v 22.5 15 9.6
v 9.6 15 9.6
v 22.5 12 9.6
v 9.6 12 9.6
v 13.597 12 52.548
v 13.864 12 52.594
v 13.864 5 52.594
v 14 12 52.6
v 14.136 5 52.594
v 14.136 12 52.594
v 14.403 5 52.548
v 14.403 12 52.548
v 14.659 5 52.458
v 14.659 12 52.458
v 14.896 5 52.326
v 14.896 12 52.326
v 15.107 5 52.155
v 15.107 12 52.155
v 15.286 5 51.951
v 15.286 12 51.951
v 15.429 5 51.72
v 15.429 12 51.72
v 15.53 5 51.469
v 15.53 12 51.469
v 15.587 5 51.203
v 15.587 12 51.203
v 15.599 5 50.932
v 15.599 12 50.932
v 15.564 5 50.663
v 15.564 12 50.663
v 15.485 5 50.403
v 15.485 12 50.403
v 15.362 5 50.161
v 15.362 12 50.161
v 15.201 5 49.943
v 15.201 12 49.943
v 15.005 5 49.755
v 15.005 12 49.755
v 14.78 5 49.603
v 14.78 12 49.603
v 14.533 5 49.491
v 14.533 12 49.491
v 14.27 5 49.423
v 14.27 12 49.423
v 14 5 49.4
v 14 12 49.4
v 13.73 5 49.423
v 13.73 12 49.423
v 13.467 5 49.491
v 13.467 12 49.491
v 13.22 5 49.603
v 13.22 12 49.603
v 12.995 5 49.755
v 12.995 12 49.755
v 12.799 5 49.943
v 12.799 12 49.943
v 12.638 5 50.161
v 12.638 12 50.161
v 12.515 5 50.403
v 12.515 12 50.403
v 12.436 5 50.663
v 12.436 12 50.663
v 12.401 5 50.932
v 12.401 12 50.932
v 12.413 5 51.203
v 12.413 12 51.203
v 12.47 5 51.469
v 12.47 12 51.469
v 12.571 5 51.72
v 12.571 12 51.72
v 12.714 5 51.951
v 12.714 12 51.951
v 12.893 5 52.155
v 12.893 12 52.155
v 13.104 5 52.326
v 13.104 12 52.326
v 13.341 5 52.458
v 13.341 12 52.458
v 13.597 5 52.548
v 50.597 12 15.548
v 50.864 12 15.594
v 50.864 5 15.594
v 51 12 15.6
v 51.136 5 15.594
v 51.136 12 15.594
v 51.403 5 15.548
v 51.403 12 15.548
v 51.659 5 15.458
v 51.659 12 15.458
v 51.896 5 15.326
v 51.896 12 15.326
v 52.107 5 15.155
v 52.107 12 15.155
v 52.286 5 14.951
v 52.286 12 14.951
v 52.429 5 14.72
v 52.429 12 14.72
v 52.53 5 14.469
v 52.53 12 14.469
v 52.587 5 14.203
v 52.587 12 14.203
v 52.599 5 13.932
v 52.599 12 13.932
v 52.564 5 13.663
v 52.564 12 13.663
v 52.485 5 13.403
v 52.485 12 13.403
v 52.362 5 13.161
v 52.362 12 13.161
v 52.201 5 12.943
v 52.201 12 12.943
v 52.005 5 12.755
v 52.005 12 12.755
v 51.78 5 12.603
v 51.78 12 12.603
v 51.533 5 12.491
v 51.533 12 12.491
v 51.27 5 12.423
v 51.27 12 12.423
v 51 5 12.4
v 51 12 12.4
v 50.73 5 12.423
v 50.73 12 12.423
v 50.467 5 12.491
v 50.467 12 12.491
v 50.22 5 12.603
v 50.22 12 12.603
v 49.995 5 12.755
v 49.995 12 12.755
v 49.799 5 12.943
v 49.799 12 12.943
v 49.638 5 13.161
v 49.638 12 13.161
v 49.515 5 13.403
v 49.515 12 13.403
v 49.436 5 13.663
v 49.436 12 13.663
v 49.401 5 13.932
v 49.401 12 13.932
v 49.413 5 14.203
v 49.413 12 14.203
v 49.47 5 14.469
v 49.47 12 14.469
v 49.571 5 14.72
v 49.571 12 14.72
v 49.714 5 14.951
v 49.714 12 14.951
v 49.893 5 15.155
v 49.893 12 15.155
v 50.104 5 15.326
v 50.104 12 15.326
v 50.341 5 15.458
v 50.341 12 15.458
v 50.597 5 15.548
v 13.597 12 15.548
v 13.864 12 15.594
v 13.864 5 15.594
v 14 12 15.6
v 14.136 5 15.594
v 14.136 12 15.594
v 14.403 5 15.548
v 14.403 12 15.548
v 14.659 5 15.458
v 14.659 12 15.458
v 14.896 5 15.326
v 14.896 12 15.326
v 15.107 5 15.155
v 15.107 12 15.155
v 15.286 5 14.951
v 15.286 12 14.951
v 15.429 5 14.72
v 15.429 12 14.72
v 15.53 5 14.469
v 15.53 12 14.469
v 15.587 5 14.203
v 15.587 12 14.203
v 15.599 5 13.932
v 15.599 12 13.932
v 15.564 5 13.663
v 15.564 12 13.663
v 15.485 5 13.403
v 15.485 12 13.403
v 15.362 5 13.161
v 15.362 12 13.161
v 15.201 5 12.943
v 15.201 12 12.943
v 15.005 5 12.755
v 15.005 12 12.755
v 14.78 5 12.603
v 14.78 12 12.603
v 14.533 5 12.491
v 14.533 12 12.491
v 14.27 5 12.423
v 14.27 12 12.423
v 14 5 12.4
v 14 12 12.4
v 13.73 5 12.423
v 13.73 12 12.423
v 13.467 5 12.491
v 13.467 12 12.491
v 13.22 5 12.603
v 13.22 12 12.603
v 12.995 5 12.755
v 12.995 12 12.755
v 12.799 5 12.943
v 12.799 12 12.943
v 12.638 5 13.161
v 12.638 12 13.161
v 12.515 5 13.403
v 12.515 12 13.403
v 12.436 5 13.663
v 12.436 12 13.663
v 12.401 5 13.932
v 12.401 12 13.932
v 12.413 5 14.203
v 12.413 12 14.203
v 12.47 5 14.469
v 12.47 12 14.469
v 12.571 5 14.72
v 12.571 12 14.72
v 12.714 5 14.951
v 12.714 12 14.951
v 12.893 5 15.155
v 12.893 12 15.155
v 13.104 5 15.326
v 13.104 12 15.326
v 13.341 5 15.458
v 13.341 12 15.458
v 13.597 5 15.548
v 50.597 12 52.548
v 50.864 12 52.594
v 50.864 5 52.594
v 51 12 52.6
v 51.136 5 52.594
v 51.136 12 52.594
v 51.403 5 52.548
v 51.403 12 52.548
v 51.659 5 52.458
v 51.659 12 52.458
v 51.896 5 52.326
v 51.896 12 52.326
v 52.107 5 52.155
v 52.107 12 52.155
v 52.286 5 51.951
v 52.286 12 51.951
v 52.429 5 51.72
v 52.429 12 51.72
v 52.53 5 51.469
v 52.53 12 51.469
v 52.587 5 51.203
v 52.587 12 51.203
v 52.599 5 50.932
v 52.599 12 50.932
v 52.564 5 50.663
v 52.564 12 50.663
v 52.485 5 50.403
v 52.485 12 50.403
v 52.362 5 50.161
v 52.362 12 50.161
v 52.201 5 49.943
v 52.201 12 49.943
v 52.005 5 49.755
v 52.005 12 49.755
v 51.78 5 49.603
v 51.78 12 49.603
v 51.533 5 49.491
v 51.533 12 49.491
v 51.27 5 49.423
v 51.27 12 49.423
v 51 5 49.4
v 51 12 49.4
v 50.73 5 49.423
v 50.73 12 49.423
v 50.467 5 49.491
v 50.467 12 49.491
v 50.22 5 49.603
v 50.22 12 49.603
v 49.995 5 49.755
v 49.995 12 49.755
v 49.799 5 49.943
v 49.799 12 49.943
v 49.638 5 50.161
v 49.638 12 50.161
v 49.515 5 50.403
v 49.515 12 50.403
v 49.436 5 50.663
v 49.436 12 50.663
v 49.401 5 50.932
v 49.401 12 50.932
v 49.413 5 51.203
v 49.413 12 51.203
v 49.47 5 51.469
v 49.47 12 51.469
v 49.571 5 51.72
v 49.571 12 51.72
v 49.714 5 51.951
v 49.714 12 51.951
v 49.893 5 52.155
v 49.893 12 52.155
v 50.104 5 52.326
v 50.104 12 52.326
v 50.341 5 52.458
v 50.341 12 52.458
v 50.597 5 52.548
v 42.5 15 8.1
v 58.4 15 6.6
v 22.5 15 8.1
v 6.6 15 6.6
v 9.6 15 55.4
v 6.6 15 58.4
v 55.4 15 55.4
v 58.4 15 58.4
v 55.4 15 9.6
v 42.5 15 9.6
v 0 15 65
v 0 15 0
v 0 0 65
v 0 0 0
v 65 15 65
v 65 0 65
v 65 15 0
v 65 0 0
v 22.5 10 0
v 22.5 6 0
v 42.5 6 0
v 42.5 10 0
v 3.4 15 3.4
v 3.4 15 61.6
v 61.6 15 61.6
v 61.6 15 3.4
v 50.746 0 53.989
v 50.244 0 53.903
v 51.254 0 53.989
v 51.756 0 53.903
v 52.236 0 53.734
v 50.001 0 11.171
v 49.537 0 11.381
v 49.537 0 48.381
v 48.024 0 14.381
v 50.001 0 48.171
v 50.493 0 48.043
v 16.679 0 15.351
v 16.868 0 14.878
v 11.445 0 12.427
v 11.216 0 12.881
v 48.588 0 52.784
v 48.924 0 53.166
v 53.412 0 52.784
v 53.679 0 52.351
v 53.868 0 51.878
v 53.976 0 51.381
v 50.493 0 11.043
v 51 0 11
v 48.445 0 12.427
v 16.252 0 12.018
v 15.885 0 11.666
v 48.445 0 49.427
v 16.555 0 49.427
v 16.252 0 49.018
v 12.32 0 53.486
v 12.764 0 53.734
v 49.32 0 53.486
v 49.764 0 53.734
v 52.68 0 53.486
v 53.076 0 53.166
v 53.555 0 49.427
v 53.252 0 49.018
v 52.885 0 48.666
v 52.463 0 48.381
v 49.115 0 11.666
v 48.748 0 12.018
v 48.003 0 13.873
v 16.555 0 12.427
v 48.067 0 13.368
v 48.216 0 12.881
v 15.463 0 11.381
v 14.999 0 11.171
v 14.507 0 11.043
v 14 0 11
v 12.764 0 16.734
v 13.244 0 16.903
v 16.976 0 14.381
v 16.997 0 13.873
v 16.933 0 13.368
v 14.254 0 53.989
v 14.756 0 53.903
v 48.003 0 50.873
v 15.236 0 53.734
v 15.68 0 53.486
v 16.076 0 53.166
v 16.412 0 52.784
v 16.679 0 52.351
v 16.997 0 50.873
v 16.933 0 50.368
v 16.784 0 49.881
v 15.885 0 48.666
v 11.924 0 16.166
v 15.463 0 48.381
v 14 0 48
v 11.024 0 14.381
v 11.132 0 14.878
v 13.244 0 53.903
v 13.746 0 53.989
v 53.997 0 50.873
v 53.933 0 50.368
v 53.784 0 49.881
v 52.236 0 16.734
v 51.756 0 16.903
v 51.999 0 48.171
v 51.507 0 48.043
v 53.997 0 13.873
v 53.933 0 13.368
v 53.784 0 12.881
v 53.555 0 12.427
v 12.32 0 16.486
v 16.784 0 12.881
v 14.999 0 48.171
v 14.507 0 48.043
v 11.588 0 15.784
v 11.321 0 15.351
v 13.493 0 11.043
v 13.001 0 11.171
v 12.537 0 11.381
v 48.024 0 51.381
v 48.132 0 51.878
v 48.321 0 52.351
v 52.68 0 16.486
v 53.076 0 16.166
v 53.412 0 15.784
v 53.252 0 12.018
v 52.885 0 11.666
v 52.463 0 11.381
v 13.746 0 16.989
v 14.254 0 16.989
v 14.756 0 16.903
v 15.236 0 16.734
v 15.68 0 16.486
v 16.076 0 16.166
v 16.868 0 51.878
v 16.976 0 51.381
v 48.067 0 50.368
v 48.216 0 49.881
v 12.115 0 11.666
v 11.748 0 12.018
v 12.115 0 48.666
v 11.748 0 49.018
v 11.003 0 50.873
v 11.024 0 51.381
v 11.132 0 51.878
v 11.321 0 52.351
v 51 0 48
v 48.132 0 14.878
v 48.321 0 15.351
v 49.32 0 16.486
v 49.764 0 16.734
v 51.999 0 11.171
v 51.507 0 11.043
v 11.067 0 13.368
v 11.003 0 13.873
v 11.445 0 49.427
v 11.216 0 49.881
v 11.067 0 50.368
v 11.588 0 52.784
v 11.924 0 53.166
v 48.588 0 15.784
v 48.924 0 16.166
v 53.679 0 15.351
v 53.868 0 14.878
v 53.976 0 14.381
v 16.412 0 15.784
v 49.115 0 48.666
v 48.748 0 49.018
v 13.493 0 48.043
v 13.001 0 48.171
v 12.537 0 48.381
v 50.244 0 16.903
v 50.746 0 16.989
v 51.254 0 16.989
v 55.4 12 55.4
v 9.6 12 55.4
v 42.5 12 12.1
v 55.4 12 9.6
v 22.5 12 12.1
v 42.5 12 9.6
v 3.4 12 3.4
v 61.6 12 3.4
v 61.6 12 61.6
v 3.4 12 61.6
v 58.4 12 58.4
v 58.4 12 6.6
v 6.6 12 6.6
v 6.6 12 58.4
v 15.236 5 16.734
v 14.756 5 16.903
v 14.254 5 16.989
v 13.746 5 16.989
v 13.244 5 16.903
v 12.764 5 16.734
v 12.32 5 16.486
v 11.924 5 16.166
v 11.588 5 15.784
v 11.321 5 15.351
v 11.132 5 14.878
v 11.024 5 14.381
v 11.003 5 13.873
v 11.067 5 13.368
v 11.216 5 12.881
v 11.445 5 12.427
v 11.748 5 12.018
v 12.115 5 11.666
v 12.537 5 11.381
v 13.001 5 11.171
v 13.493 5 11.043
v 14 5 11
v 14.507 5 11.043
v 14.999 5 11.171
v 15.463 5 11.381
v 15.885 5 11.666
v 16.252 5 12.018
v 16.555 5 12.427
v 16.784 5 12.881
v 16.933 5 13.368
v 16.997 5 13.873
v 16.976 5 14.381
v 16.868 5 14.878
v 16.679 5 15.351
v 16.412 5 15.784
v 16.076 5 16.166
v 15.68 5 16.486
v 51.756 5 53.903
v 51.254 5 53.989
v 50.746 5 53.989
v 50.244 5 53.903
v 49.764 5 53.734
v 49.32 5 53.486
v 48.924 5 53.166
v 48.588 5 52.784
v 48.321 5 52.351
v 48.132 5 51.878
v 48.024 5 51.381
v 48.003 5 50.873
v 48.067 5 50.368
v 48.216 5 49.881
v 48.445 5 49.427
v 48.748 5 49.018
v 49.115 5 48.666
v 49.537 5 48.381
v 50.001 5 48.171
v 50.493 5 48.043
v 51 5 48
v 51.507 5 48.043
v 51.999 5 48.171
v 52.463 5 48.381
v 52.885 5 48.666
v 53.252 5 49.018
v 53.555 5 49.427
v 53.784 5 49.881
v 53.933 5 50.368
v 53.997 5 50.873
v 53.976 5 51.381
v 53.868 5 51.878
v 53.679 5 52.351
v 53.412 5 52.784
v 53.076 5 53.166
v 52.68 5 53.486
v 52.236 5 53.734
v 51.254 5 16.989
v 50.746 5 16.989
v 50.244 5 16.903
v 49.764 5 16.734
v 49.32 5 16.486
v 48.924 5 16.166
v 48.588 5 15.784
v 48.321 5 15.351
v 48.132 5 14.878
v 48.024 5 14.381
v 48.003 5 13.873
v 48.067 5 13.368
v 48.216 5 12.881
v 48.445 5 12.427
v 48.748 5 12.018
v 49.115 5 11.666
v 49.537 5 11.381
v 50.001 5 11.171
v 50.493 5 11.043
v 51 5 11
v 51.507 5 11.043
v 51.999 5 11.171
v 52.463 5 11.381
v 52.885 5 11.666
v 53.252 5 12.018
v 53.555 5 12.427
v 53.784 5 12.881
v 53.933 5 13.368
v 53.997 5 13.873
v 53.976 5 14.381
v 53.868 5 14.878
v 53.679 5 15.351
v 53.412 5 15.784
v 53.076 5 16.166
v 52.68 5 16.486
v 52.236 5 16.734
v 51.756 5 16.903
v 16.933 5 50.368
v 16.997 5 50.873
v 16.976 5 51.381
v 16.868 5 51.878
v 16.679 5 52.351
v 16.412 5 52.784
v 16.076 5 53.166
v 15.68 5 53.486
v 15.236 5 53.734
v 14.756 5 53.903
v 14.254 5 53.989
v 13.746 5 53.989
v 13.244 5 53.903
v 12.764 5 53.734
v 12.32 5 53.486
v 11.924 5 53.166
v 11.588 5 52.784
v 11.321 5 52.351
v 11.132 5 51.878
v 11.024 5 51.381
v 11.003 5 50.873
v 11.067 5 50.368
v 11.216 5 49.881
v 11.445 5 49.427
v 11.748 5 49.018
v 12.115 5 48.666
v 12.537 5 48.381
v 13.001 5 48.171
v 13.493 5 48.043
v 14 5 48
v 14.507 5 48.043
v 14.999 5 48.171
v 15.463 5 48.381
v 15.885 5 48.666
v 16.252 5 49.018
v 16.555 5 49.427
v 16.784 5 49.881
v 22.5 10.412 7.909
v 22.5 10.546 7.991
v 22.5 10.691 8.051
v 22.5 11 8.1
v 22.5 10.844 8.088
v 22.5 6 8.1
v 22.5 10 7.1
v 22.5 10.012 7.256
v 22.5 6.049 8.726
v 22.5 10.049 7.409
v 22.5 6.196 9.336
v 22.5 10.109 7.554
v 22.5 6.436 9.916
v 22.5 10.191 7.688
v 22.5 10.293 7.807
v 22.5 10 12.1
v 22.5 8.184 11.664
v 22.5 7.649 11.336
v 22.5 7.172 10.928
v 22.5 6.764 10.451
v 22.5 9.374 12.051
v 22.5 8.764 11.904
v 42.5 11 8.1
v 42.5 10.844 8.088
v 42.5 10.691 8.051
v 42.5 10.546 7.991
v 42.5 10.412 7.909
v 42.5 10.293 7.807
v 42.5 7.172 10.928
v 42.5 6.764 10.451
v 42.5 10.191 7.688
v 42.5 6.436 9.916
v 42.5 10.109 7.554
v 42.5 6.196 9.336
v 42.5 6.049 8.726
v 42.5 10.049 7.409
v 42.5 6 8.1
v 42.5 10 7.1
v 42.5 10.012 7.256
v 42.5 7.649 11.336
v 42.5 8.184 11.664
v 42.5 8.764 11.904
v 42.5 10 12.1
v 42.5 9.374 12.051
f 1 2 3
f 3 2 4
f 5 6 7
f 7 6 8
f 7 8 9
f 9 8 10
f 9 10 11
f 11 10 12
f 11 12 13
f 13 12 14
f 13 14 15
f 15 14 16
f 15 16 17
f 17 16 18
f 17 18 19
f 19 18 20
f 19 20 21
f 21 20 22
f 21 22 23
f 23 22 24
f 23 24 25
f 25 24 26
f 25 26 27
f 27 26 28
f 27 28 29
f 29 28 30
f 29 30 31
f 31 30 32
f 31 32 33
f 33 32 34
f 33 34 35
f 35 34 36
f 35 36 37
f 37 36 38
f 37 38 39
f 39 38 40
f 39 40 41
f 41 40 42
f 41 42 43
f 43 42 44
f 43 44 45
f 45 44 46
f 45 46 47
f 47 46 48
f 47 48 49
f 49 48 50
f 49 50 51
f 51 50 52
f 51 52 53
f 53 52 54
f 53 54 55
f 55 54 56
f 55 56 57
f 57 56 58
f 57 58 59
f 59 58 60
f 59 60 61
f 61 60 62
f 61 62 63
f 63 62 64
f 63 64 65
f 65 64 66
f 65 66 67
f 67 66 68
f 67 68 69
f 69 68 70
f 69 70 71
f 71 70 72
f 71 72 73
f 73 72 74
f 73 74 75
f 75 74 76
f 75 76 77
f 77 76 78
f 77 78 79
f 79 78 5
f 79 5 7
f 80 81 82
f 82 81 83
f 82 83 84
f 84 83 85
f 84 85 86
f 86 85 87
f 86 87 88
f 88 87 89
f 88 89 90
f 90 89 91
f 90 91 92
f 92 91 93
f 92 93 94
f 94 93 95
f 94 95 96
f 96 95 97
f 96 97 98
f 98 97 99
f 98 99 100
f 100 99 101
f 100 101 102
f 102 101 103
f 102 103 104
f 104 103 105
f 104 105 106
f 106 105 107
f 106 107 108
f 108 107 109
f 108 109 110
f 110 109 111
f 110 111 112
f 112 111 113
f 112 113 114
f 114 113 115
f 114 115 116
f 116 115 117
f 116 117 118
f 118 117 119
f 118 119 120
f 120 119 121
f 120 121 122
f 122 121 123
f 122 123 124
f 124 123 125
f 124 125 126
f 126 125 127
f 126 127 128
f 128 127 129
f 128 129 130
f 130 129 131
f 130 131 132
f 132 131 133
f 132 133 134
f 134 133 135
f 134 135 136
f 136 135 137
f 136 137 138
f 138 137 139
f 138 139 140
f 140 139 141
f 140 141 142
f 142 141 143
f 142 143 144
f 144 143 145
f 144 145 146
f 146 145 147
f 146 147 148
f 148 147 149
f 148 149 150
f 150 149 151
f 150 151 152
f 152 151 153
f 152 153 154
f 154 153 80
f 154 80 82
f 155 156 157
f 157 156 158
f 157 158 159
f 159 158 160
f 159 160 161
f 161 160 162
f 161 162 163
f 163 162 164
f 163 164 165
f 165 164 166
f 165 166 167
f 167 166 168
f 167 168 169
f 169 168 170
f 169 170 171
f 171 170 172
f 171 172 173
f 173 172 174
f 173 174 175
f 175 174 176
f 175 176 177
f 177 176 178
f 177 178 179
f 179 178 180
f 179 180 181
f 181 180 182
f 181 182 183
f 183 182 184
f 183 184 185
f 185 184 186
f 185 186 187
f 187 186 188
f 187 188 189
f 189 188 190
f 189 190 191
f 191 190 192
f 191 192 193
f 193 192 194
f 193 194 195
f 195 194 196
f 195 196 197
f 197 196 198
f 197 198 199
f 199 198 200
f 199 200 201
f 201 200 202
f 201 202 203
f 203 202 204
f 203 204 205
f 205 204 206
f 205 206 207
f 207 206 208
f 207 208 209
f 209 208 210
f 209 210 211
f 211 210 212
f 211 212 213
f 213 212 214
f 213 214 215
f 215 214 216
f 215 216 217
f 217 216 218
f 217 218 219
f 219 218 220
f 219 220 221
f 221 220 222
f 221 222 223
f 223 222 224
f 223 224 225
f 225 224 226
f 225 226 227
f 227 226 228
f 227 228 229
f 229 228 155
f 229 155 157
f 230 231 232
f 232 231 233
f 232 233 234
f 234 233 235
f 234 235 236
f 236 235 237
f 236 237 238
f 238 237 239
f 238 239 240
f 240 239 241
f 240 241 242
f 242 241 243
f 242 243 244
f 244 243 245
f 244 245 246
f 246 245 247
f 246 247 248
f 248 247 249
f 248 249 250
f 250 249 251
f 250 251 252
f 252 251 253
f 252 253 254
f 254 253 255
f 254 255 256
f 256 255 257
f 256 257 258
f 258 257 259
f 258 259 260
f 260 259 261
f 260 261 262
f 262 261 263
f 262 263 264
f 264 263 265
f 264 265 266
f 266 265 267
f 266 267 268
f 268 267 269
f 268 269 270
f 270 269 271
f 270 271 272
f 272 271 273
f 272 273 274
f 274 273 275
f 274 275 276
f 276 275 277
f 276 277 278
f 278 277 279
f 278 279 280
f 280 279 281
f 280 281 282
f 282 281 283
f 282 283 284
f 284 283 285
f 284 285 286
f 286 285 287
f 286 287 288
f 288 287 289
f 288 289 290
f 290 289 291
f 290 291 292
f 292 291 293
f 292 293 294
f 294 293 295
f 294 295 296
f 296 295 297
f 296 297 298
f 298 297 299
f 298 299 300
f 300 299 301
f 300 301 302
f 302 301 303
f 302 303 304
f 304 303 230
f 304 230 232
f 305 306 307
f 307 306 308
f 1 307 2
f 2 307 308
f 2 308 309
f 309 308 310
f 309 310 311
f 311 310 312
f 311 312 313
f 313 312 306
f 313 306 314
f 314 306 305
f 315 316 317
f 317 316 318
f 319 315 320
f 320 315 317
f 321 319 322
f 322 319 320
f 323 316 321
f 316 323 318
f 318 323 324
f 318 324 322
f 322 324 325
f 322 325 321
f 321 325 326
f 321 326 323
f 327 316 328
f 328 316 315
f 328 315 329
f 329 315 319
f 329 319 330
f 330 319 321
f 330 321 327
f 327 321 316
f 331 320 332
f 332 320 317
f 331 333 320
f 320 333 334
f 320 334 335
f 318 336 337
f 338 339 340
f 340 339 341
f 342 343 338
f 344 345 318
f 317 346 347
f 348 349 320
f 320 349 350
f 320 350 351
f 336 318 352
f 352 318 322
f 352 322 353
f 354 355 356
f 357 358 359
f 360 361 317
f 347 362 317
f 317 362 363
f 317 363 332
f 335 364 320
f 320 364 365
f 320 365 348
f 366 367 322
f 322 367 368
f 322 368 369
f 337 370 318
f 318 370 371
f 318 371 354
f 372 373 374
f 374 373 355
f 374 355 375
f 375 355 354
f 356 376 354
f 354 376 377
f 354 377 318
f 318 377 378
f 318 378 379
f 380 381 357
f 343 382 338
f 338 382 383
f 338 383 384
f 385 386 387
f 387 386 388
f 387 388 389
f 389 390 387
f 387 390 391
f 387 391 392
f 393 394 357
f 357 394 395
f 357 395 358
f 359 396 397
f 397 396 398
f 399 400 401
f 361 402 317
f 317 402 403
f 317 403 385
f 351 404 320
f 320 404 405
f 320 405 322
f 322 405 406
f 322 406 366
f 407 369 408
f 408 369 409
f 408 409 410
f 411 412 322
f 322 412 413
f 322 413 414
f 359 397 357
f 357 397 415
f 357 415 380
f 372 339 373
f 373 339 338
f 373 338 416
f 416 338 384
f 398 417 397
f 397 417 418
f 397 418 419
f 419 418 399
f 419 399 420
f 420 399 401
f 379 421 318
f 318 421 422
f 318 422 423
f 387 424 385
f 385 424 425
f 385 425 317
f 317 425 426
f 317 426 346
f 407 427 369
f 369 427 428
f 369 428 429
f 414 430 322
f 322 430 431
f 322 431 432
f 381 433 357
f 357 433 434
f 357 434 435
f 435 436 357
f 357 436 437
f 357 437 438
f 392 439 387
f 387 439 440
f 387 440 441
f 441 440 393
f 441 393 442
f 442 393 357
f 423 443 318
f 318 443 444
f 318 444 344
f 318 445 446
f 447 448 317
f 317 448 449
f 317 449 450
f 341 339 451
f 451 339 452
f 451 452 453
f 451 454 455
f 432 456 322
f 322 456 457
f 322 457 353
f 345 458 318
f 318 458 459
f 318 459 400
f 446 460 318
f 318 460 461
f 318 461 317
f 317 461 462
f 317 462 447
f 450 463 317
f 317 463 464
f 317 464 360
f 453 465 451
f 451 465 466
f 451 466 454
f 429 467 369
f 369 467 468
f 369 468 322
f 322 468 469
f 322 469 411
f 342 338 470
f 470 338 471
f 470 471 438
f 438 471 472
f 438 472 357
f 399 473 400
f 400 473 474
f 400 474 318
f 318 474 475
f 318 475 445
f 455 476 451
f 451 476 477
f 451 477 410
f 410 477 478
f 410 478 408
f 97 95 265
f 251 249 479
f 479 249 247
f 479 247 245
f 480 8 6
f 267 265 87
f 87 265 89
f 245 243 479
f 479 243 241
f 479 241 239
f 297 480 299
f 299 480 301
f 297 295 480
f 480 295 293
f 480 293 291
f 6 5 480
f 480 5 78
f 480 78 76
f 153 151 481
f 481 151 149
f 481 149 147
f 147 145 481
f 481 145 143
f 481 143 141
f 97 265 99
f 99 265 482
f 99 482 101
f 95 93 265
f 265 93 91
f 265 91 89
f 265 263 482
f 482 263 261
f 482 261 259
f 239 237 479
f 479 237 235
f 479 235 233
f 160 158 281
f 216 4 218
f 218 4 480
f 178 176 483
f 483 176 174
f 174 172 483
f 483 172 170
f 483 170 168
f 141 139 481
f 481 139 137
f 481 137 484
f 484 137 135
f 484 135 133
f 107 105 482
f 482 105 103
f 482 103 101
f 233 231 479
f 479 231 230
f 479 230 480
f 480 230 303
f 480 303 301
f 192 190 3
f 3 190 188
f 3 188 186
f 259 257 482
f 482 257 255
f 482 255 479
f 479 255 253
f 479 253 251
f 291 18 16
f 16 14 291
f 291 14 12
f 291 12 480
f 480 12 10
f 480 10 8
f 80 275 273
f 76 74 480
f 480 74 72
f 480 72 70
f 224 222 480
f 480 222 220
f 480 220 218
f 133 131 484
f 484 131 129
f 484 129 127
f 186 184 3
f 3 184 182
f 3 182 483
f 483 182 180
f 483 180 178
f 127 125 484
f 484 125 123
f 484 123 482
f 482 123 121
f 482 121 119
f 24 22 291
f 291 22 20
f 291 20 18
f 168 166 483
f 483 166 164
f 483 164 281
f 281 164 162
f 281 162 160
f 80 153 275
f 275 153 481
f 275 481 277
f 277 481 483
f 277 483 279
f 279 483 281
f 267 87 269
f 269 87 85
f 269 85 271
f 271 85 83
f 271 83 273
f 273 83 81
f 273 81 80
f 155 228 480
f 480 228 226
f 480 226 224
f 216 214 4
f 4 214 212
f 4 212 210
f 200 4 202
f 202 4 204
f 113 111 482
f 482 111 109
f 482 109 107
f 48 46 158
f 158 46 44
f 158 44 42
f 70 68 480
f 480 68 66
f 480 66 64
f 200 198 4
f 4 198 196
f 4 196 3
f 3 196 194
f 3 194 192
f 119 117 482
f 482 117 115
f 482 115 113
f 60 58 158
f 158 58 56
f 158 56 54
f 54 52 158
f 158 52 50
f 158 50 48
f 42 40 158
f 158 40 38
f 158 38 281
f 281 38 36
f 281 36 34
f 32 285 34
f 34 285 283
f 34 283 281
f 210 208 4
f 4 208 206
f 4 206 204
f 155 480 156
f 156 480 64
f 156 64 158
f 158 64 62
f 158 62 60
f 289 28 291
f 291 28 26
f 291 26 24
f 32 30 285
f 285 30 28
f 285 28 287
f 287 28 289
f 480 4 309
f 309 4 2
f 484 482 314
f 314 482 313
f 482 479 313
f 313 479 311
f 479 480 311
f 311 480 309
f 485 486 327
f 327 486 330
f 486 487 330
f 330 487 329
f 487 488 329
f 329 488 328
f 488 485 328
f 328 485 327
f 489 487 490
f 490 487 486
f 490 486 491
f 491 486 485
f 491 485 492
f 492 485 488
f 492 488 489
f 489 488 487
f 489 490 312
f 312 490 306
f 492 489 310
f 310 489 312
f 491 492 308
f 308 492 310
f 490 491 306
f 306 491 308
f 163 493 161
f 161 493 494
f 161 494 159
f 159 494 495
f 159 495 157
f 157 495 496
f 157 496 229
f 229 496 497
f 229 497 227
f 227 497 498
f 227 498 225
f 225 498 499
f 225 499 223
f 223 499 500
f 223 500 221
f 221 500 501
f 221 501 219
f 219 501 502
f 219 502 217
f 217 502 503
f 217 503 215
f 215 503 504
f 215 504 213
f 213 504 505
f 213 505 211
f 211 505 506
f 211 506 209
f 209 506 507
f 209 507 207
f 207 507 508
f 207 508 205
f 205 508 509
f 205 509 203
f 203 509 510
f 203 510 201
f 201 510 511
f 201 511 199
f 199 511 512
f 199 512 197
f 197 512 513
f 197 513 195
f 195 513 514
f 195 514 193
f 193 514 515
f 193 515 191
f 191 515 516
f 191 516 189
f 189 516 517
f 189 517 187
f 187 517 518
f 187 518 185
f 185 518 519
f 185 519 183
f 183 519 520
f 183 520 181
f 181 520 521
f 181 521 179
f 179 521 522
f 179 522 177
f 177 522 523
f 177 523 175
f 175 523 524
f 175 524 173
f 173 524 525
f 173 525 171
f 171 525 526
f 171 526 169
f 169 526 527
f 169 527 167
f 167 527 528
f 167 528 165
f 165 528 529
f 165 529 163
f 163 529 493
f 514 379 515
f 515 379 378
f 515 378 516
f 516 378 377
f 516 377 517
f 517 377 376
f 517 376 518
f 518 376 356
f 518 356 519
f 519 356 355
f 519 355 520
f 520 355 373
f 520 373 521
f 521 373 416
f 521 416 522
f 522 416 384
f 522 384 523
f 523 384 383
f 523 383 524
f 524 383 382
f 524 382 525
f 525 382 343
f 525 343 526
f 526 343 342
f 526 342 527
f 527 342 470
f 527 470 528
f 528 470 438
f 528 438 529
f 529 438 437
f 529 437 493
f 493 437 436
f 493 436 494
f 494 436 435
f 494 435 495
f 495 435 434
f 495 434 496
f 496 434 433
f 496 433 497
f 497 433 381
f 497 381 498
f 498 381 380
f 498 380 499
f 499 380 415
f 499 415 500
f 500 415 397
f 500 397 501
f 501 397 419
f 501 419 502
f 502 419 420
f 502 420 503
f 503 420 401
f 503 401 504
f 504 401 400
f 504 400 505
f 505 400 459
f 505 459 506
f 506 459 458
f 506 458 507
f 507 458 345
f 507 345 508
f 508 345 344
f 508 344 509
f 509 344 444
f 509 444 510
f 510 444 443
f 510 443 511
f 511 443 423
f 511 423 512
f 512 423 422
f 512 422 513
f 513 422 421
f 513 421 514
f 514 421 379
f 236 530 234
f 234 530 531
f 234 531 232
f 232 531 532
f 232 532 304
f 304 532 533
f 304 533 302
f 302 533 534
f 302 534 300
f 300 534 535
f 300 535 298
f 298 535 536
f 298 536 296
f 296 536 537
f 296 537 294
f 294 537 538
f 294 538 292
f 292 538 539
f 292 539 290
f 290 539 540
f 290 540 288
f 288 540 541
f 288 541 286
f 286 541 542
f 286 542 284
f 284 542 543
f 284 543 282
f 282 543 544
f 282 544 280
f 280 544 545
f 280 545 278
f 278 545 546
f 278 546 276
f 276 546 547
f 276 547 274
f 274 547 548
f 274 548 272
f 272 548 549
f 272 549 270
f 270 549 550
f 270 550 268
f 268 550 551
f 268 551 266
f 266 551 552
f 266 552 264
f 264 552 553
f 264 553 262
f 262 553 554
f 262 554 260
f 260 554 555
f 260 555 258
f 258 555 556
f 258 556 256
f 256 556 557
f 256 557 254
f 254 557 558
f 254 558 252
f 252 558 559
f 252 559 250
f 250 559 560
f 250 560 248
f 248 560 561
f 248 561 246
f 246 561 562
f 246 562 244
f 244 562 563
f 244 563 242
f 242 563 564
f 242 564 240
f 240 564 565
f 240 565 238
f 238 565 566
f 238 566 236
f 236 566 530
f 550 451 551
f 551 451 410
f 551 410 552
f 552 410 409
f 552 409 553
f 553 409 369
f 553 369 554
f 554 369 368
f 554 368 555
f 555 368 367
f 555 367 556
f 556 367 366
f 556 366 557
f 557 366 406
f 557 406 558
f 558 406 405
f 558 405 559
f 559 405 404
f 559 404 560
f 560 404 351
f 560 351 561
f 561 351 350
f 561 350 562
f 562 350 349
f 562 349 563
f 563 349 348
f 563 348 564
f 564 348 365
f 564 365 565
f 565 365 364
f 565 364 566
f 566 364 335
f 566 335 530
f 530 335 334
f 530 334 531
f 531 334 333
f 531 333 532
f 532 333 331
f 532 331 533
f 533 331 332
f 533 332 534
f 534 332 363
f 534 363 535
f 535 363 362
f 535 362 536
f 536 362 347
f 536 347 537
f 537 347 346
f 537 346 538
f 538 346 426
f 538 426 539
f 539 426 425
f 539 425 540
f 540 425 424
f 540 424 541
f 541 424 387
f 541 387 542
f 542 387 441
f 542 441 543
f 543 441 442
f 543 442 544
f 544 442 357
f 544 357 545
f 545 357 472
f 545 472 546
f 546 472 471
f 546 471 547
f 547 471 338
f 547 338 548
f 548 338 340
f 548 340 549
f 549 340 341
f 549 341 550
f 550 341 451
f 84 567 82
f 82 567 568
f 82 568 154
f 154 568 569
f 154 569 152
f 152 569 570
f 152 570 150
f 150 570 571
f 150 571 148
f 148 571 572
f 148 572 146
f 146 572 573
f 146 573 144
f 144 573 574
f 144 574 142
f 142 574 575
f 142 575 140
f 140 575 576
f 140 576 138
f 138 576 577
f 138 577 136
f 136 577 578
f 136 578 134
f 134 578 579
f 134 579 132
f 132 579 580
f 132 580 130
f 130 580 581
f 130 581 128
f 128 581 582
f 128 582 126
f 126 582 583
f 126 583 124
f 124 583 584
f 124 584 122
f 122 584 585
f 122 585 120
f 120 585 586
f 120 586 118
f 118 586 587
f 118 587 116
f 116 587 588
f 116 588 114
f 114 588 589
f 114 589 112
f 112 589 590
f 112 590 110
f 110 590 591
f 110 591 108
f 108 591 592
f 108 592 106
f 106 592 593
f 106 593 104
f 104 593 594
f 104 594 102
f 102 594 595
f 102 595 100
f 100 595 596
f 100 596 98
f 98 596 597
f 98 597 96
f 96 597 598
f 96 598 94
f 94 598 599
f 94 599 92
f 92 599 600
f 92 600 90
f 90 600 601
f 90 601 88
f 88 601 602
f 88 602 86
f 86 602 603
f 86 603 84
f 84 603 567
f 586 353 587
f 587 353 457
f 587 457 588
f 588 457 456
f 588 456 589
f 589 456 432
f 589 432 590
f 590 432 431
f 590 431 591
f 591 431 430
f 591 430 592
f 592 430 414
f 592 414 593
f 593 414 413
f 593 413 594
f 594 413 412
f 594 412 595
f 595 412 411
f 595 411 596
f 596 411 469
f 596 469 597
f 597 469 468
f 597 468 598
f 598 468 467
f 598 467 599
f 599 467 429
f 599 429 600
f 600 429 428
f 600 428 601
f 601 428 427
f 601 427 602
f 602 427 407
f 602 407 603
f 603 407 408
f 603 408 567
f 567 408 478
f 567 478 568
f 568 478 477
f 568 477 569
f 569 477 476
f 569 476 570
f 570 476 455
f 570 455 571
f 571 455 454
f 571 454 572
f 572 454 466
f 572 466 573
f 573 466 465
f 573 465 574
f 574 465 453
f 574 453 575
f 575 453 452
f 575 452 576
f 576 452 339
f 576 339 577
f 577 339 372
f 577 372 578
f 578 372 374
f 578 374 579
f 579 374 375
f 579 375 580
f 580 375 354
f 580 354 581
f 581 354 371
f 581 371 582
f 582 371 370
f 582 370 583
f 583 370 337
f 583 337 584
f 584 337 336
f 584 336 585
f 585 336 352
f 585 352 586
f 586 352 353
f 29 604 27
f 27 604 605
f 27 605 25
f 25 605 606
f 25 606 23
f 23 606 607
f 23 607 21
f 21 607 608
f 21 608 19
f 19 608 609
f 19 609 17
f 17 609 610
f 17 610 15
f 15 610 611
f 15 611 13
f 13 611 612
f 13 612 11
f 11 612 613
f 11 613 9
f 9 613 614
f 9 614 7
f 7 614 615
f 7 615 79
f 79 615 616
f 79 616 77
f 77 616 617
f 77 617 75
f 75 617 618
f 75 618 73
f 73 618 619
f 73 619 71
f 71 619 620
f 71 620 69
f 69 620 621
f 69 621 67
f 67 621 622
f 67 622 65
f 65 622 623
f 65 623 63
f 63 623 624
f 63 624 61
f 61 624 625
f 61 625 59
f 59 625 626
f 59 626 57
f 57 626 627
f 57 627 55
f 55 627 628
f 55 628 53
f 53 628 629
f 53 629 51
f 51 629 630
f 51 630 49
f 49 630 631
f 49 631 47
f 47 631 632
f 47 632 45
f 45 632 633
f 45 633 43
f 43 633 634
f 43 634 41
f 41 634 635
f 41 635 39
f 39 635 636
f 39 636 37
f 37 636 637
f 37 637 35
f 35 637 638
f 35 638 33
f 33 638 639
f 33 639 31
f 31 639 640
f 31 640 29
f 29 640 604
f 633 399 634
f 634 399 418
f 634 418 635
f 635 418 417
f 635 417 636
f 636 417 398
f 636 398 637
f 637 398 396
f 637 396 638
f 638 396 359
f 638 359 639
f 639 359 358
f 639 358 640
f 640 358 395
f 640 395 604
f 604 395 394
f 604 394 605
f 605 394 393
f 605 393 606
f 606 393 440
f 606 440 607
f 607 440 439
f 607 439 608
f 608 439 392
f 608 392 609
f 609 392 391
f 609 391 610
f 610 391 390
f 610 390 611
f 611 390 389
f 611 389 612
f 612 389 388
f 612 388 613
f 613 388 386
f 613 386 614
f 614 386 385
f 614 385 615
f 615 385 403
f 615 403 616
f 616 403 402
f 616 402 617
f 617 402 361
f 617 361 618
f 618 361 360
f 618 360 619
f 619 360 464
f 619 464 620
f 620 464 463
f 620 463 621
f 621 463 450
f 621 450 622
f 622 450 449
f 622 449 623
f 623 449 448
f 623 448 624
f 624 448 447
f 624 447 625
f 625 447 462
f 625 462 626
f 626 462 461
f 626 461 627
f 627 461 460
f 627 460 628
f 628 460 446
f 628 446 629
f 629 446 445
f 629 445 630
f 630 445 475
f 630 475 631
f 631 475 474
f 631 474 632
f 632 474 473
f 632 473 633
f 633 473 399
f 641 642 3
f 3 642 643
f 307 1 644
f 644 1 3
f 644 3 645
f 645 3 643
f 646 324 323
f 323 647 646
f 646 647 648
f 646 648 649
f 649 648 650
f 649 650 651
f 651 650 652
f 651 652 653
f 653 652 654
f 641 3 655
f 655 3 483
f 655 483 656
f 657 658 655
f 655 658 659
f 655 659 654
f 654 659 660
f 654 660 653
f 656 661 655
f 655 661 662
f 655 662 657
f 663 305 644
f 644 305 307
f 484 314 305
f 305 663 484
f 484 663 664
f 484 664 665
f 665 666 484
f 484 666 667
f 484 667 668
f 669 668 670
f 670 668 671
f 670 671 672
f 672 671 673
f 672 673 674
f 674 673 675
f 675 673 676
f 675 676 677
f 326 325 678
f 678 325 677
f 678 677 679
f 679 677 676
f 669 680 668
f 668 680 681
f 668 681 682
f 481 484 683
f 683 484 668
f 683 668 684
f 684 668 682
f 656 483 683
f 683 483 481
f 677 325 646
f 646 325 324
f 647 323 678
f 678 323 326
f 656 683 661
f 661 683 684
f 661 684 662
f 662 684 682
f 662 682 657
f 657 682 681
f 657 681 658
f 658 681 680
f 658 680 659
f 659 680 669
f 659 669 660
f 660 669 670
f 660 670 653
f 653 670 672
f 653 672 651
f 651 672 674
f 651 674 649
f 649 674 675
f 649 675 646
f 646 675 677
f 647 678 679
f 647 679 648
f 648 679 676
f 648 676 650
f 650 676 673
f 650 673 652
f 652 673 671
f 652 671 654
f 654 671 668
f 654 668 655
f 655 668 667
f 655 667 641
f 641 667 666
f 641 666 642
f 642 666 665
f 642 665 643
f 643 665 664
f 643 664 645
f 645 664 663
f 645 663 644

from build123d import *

# Parameters (mm, degrees)
SKETCH_1_W           = 65
SKETCH_1_H           = 65
EXTRUDE_1_DEPTH      = 15
SKETCH_2_R           = 1.6
CUT_EXTRUDE_1_DEPTH  = 16
SKETCH_3_W           = 45.8
SKETCH_3_H           = 45.8
CUT_EXTRUDE_2_DEPTH  = 3
SKETCH_4_W           = 58.2
SKETCH_4_H           = 58.2
SKETCH_4_W_2         = 51.8
SKETCH_4_H_2         = 51.8
CUT_EXTRUDE_3_DEPTH  = 3
SKETCH_7_R           = 3
CUT_EXTRUDE_6_DEPTH  = 5
SKETCH_10_W          = 20
SKETCH_10_H          = 4
CUT_EXTRUDE_9_DEPTH  = 9
SKETCH_11_W          = 20
SKETCH_11_H          = 4
CUT_EXTRUDE_10_DEPTH = 9
FILLET_2_R           = 4
FILLET_3_R           = 1


with BuildPart() as part:
    # 草图1 → 凸台-拉伸1 (new body)
    with BuildSketch(Plane(origin=(0, 0, 0), x_dir=(1, 0, 0), z_dir=(0, 1, 0))):
        with Locations((32.5, -32.5)):
            Rectangle(SKETCH_1_W, SKETCH_1_H)
    extrude(amount=EXTRUDE_1_DEPTH)

    # 草图2 → 切除-拉伸1 (cut, through all)
    with BuildSketch(Plane(origin=(0, 0, 0), x_dir=(-1, 0, 0), z_dir=(0, -1, 0))):
        with Locations((-14, -51)):
            Circle(SKETCH_2_R)
        with Locations((-51, -51)):
            Circle(SKETCH_2_R)
        with Locations((-14, -14)):
            Circle(SKETCH_2_R)
        with Locations((-51, -14)):
            Circle(SKETCH_2_R)
    extrude(amount=-CUT_EXTRUDE_1_DEPTH, mode=Mode.SUBTRACT)

    # 草图3 → 切除-拉伸2 (cut)
    with BuildSketch(Plane(origin=(0, 15, 0), x_dir=(1, 0, 0), z_dir=(0, 1, 0))):
        with Locations((32.5, -32.5)):
            Rectangle(SKETCH_3_W, SKETCH_3_H)
    extrude(amount=-CUT_EXTRUDE_2_DEPTH, mode=Mode.SUBTRACT)

    # 草图4 → 切除-拉伸3 (cut)
    with BuildSketch(Plane(origin=(0, 15, 0), x_dir=(1, 0, 0), z_dir=(0, 1, 0))):
        with Locations((32.5, -32.5)):
            Rectangle(SKETCH_4_W, SKETCH_4_H)
        with Locations((32.5, -32.5)):
            Rectangle(SKETCH_4_W_2, SKETCH_4_H_2, mode=Mode.SUBTRACT)
    extrude(amount=-CUT_EXTRUDE_3_DEPTH, mode=Mode.SUBTRACT)

    # 草图7 → 切除-拉伸6 (cut)
    with BuildSketch(Plane(origin=(0, 0, 0), x_dir=(-1, 0, 0), z_dir=(0, -1, 0))):
        with Locations((-14, -14)):
            Circle(SKETCH_7_R)
        with Locations((-14, -51)):
            Circle(SKETCH_7_R)
        with Locations((-51, -14)):
            Circle(SKETCH_7_R)
        with Locations((-51, -51)):
            Circle(SKETCH_7_R)
    extrude(amount=-CUT_EXTRUDE_6_DEPTH, mode=Mode.SUBTRACT)

    # 草图10 → 切除-拉伸9 (cut)
    with BuildSketch(Plane(origin=(0, 15, 0), x_dir=(1, 0, 0), z_dir=(0, 1, 0))):
        with Locations((32.5, -10.1)):
            Rectangle(SKETCH_10_W, SKETCH_10_H)
    extrude(amount=-CUT_EXTRUDE_9_DEPTH, mode=Mode.SUBTRACT)

    # 草图11 → 切除-拉伸10 (cut)
    with BuildSketch(Plane(origin=(0, 0, 0), x_dir=(-1, 0, 0), z_dir=(0, 0, -1))):
        with Locations((-32.5, 8)):
            Rectangle(SKETCH_11_W, SKETCH_11_H)
    extrude(amount=-CUT_EXTRUDE_10_DEPTH, mode=Mode.SUBTRACT)

    # 圆角2
    fillet_2_edges = [part.edges().sort_by_distance(p)[0] for p in [
        (32.5, 6, 12.1),
    ]]
    fillet(fillet_2_edges, radius=FILLET_2_R)

    # 圆角3
    fillet_3_edges = [part.edges().sort_by_distance(p)[0] for p in [
        (32.5, 10, 8.1),
    ]]
    fillet(fillet_3_edges, radius=FILLET_3_R)


solid = part.part
